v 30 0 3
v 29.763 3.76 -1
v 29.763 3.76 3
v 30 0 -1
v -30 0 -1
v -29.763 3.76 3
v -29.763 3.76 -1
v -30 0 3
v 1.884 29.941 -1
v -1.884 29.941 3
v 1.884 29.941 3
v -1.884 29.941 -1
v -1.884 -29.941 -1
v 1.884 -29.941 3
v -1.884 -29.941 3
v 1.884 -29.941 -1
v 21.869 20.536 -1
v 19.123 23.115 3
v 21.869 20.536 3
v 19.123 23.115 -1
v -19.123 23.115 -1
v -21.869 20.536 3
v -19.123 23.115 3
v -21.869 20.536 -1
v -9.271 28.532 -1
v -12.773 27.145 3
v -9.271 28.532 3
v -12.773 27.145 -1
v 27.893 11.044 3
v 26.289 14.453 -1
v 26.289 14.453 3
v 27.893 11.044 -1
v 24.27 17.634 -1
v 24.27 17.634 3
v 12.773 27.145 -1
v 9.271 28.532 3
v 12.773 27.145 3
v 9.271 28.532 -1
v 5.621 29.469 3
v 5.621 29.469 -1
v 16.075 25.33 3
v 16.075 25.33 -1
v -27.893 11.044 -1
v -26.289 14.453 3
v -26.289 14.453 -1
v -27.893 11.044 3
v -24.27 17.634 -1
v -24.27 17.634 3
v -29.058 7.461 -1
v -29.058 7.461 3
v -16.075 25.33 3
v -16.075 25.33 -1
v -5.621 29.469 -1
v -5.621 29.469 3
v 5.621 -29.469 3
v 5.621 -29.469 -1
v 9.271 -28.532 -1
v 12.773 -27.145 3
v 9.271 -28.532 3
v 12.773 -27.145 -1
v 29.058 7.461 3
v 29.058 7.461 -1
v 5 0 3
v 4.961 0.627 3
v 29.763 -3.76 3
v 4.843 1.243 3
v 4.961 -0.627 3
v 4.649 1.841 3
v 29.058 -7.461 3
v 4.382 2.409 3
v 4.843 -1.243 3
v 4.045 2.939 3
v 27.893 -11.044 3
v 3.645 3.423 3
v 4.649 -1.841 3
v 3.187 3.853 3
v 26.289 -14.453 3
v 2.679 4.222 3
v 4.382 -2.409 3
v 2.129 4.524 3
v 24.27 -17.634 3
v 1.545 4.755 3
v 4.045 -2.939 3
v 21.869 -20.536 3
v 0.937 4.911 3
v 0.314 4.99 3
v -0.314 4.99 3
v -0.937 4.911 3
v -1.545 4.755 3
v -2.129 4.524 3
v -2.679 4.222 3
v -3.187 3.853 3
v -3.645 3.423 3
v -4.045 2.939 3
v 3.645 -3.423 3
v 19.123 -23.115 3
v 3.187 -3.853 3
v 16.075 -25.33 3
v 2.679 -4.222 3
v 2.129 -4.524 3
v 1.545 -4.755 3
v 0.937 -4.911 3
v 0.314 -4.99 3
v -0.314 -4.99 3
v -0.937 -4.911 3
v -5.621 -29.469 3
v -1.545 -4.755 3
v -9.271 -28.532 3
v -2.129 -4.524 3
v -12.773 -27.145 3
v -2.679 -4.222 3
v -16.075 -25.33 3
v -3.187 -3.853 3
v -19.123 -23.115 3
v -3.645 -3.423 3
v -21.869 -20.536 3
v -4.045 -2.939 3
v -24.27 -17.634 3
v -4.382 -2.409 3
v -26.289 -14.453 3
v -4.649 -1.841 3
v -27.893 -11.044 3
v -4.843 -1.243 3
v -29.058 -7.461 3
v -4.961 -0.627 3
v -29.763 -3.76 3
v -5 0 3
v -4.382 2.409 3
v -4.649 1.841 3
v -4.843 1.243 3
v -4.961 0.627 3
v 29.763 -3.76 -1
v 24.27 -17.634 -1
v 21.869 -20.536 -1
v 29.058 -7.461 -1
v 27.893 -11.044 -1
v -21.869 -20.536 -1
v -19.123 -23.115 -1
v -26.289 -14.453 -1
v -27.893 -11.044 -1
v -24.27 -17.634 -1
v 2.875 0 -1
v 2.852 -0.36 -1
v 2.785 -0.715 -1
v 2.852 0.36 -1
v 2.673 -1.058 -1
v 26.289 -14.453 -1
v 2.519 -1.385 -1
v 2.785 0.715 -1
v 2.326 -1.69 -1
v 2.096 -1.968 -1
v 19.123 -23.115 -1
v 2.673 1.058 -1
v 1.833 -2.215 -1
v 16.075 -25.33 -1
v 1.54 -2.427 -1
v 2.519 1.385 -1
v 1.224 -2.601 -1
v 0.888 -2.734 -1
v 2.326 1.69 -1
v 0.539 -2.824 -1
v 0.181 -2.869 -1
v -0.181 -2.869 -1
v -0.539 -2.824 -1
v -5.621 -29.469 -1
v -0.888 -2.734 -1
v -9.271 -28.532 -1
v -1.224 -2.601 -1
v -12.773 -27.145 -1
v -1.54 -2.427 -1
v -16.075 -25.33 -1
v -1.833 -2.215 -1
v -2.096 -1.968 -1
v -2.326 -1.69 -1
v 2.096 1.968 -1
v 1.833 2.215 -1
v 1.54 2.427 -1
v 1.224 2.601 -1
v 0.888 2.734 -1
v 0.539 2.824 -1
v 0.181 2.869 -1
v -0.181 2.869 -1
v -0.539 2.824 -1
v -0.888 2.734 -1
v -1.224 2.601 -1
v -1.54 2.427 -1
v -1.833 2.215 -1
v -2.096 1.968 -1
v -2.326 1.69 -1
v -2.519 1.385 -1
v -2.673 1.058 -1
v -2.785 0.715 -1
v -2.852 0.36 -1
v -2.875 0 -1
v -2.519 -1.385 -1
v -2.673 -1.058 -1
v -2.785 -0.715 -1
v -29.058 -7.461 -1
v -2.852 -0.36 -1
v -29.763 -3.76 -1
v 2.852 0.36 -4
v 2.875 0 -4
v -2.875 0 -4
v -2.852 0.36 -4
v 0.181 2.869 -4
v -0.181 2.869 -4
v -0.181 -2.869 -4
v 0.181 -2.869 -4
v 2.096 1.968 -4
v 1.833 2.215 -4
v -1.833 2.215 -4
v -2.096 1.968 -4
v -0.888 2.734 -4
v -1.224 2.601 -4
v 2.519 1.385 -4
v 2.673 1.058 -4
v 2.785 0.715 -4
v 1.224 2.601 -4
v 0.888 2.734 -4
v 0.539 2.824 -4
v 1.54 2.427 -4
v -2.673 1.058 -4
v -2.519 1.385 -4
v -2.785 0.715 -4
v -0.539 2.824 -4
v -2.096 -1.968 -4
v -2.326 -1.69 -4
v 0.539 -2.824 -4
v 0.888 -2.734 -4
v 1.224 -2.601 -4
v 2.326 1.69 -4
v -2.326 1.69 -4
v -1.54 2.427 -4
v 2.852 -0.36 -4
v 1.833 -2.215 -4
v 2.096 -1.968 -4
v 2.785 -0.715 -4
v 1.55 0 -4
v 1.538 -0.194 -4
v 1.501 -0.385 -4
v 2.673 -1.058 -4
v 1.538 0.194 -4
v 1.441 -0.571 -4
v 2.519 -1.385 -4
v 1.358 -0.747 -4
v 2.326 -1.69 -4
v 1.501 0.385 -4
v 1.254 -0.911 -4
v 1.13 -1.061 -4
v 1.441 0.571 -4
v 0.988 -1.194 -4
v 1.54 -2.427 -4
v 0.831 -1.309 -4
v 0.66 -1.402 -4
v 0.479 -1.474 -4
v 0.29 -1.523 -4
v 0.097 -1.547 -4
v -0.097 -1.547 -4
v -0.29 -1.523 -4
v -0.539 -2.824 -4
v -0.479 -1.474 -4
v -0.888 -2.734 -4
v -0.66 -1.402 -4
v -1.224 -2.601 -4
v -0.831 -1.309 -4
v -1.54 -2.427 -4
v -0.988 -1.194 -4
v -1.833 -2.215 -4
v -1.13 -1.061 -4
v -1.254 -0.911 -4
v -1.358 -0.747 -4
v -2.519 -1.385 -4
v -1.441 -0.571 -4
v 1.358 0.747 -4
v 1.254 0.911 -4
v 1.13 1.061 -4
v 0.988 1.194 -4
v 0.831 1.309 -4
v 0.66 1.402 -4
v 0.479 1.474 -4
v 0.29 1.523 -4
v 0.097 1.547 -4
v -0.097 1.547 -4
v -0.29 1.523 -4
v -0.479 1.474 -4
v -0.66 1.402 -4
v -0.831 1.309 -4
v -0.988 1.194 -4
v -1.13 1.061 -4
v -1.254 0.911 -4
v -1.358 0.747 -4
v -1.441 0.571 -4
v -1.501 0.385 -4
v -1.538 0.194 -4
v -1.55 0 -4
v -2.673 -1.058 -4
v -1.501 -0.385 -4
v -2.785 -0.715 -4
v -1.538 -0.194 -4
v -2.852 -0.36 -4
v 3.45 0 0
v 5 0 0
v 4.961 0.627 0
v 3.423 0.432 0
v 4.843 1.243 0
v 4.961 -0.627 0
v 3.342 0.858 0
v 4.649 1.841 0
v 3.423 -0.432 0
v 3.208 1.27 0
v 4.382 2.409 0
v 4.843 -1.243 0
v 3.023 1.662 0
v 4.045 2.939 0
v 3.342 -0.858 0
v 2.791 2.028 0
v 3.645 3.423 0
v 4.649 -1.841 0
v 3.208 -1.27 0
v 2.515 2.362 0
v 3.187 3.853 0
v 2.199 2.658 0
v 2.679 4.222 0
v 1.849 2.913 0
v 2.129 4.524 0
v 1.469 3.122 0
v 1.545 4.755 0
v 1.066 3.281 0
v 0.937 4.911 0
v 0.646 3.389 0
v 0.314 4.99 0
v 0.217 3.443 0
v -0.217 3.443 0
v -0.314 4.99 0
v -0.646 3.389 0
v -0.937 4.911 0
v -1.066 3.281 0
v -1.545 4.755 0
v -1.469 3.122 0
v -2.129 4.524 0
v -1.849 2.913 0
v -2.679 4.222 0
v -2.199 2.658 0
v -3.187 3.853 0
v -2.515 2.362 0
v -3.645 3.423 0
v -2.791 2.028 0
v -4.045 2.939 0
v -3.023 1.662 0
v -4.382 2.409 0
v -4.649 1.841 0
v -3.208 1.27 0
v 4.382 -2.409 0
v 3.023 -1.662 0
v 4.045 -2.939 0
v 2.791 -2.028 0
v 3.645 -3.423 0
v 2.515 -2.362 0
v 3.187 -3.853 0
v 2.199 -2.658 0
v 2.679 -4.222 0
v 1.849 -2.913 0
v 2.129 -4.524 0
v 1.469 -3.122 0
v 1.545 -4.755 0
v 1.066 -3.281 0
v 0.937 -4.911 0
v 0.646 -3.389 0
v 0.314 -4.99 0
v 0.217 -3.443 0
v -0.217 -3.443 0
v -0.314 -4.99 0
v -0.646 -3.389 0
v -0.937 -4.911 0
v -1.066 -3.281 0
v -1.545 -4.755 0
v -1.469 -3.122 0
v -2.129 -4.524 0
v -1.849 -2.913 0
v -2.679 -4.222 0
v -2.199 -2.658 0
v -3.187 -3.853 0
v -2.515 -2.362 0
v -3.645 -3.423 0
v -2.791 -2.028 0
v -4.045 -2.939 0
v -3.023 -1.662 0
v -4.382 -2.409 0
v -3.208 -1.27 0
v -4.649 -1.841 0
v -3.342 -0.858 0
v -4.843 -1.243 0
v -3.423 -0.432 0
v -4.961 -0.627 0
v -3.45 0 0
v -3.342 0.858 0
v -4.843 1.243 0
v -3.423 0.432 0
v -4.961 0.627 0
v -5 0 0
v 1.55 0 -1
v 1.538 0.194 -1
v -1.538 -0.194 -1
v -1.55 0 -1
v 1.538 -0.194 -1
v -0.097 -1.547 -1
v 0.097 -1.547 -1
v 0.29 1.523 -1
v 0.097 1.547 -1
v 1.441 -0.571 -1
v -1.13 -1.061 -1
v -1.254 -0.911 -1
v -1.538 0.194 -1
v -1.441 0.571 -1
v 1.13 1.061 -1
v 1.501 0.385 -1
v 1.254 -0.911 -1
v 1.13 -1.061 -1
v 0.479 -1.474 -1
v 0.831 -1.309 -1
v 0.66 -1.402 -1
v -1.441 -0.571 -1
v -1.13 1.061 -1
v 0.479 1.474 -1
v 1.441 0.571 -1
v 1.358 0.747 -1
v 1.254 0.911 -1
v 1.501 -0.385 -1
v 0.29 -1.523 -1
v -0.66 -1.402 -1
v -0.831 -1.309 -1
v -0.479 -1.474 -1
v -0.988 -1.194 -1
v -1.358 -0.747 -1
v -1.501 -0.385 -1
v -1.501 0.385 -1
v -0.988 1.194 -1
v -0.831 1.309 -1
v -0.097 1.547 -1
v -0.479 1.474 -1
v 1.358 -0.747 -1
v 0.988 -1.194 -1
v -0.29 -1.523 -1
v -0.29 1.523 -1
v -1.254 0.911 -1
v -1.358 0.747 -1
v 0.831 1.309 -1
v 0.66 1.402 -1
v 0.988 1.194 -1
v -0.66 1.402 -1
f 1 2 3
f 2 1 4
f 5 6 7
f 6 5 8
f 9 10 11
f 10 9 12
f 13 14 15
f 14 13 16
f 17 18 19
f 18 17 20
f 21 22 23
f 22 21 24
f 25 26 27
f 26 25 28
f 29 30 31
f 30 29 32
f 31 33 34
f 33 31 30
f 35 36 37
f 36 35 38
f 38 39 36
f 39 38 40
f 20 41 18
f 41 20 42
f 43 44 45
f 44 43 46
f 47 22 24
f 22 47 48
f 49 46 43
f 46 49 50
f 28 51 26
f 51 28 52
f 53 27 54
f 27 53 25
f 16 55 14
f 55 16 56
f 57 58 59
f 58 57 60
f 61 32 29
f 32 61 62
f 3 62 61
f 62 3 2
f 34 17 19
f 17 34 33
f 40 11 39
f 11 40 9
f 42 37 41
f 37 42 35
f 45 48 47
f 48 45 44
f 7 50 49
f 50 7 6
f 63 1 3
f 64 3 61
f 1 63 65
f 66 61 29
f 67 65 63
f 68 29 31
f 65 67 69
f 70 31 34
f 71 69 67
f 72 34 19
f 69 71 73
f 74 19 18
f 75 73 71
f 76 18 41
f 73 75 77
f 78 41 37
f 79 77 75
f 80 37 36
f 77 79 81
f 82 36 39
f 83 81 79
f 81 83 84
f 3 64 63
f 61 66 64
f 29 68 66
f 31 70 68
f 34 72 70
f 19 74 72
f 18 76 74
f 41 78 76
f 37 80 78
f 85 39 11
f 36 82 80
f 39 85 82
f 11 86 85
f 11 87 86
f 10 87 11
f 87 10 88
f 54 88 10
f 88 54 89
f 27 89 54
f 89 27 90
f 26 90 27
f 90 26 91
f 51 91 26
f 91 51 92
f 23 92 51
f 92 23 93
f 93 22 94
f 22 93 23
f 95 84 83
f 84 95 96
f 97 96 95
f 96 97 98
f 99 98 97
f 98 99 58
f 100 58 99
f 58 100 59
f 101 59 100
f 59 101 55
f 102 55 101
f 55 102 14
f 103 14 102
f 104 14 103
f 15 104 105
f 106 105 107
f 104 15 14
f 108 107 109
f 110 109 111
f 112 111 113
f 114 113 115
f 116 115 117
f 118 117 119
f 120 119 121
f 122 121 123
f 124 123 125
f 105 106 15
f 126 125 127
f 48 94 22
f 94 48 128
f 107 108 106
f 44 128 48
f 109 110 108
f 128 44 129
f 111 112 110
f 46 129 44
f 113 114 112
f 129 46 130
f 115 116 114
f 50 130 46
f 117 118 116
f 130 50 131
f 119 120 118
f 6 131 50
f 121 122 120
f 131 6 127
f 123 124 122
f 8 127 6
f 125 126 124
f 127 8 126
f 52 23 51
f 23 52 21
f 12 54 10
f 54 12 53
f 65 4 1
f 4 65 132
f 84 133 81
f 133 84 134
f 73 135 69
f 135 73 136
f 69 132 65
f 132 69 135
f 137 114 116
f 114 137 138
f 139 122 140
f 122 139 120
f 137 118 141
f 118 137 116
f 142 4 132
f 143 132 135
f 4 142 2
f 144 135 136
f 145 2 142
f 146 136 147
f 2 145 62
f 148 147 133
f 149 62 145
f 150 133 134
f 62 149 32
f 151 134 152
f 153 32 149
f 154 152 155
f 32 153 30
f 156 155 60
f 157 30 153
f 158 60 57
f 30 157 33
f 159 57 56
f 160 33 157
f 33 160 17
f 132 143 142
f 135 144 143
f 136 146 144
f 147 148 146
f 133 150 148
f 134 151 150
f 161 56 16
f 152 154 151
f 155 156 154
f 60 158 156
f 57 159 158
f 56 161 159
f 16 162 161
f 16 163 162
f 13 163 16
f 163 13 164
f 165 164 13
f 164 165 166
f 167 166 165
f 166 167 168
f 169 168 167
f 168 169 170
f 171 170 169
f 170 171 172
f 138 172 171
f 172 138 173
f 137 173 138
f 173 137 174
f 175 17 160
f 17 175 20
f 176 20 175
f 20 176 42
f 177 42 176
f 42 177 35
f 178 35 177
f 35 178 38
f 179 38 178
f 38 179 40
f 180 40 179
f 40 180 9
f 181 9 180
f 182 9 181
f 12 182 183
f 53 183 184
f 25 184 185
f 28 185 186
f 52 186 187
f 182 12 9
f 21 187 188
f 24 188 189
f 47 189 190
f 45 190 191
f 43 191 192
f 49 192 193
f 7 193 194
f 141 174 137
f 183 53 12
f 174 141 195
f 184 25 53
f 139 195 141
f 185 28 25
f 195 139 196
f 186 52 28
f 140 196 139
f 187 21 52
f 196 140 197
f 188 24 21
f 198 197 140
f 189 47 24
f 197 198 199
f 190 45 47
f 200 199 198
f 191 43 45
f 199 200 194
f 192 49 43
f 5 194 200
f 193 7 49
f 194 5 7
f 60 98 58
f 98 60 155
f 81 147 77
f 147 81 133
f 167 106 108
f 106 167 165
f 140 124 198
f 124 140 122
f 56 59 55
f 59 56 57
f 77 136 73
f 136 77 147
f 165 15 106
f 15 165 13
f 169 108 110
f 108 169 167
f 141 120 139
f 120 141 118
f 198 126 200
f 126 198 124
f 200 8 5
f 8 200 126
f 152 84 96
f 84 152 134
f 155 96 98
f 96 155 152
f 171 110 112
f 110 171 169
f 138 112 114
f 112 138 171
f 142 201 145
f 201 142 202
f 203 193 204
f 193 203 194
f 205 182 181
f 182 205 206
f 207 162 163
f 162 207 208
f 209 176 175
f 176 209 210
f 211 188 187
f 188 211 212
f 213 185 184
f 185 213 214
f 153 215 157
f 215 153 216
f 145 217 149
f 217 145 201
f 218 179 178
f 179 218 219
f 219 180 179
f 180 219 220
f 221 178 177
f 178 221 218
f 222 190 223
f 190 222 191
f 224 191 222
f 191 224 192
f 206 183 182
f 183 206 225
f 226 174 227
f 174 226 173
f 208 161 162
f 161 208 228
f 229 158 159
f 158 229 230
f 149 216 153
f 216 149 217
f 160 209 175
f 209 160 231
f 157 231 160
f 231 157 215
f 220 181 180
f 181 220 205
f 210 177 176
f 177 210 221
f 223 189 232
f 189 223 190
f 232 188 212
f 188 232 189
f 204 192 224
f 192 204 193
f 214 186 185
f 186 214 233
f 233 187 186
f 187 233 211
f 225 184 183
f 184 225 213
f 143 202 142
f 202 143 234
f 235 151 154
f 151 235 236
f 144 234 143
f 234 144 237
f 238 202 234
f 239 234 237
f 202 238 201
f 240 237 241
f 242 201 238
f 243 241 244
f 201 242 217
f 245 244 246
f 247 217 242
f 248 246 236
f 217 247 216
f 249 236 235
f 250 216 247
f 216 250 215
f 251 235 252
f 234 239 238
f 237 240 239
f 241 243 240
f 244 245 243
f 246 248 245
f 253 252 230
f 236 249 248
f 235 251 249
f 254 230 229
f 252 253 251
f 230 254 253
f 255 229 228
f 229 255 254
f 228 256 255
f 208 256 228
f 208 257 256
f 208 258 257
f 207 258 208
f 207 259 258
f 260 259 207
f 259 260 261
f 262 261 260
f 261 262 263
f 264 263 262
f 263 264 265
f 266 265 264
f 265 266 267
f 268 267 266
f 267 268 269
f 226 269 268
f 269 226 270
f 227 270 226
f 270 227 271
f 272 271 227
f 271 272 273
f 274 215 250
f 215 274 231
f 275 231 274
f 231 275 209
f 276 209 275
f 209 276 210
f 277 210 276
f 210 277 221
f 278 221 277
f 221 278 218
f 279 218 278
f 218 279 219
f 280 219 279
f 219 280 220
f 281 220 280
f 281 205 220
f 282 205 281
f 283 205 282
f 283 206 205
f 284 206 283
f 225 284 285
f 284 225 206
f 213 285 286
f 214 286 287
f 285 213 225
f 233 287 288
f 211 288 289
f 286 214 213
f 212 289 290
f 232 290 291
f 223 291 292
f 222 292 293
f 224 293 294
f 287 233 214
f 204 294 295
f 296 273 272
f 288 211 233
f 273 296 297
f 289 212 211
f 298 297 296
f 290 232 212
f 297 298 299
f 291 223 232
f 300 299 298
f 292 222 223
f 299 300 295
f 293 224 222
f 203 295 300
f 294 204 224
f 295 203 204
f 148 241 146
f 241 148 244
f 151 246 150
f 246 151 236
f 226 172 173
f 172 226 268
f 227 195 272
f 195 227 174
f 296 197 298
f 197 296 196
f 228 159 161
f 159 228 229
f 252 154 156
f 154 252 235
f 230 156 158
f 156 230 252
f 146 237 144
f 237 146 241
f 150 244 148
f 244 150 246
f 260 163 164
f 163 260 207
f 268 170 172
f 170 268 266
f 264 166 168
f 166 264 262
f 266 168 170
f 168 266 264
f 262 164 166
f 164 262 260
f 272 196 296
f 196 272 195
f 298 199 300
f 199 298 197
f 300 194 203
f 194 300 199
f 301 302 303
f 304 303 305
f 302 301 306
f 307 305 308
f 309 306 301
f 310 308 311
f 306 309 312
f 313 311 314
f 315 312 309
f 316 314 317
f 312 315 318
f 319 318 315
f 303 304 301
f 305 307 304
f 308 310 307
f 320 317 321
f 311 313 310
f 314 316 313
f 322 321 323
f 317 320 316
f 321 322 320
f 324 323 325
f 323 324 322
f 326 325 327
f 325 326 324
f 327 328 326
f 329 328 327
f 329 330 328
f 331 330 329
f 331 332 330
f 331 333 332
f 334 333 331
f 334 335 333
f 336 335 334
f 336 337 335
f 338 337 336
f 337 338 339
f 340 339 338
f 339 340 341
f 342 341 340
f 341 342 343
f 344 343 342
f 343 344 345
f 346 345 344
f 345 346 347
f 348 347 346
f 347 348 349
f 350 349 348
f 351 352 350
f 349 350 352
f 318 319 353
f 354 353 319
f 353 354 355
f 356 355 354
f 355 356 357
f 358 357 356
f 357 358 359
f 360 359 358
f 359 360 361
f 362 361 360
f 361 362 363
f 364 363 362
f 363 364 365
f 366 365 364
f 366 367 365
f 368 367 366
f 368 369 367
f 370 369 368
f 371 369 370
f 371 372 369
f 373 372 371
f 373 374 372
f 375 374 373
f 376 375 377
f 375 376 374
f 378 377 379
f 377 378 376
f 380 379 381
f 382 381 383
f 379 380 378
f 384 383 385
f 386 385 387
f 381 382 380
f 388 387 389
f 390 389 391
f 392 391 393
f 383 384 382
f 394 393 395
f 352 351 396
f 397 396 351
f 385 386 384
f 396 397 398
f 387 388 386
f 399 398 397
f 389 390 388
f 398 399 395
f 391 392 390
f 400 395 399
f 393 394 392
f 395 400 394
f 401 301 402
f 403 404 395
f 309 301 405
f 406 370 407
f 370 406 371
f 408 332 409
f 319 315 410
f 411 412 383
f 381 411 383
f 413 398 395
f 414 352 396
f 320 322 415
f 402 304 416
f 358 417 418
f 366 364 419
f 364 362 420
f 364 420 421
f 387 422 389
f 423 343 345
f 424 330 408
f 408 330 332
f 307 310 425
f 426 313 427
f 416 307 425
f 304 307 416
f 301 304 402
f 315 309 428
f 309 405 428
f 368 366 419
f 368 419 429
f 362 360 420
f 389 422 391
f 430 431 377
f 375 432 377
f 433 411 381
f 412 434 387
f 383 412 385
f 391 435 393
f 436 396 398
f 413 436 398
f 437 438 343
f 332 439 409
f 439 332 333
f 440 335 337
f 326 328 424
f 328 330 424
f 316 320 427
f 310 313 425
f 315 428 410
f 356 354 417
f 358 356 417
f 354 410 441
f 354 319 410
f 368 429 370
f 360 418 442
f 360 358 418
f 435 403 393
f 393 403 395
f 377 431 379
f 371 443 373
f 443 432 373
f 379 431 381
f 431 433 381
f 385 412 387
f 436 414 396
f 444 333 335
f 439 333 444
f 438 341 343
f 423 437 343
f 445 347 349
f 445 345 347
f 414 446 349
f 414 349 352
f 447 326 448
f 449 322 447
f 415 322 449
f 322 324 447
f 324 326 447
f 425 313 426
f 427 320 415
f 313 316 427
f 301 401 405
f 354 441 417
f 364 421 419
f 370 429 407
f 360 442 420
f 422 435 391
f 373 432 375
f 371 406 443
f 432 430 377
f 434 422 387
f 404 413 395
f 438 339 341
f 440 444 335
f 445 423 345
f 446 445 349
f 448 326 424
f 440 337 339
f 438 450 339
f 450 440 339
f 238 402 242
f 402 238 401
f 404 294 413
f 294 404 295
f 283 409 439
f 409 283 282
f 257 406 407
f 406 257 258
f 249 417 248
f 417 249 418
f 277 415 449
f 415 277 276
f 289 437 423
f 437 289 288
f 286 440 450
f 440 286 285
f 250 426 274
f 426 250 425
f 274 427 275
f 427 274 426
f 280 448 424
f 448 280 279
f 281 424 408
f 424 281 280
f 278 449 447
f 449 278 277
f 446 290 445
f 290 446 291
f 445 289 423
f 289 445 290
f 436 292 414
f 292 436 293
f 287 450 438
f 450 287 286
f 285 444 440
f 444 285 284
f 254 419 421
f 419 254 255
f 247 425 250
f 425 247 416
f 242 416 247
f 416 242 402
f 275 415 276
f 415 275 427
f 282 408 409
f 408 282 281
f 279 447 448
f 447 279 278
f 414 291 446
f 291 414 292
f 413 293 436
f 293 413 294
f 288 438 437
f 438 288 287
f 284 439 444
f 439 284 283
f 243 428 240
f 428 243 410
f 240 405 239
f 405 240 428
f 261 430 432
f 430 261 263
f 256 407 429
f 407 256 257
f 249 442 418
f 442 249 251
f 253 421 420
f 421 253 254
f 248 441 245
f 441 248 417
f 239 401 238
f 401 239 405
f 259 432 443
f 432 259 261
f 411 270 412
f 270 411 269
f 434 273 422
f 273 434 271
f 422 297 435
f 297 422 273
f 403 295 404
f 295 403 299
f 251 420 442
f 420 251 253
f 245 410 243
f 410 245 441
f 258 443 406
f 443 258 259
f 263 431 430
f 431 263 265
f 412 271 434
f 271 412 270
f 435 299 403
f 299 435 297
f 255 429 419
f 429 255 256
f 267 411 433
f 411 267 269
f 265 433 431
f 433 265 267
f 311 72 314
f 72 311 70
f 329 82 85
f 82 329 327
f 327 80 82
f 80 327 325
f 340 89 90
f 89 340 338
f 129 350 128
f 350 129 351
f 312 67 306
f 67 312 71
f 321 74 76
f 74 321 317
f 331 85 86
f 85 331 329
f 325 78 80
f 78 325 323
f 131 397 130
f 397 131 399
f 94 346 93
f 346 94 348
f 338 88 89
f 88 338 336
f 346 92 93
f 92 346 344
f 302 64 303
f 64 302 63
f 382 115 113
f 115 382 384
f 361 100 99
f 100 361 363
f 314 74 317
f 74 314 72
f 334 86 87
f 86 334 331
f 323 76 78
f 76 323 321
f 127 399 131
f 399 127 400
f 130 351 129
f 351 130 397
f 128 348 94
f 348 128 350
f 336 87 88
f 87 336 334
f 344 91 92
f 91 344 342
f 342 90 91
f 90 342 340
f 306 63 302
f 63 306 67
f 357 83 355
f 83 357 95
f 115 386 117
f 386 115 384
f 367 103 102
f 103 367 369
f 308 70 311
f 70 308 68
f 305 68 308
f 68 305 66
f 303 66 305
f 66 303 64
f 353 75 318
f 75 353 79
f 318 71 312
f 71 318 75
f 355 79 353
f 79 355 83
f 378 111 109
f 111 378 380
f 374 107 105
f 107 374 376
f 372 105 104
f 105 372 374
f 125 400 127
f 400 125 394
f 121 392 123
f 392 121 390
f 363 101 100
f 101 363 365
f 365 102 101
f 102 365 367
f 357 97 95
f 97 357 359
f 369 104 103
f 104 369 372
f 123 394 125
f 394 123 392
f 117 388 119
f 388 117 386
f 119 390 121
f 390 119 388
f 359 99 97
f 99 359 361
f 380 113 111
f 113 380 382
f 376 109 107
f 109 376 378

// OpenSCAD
$fn = 50;

difference() {
	union() {
		translate(v = [0, 0, -1.0]) {
			cylinder(h = 4.0, r = 30.0);
		}
		#translate(v = [0, 0, -4.0]) {
			cylinder(h = 4.0, r = 2.875);
		}
	}
	union() {
		translate(v = [0, 0, 0]) {
			rotate(a = [0, 0, 0]) {
				difference() {
					union() {
						translate(v = [0, 0, -4.0]) {
							cylinder(h = 4.0, r = 1.25);
						}
						translate(v = [0, 0, -1.0]) {
							cylinder(h = 1.0, r1 = 1.55, r2 = 3.45);
						}
						translate(v = [0, 0, -4.0]) {
							cylinder(h = 4.0, r = 1.55);
						}
						translate(v = [0, 0, -4.0]) {
							cylinder(h = 4.0, r = 1.25);
						}
					}
					union();
				}
			}
		}
		#cylinder(h = 3, r = 5.0);
	}
}
